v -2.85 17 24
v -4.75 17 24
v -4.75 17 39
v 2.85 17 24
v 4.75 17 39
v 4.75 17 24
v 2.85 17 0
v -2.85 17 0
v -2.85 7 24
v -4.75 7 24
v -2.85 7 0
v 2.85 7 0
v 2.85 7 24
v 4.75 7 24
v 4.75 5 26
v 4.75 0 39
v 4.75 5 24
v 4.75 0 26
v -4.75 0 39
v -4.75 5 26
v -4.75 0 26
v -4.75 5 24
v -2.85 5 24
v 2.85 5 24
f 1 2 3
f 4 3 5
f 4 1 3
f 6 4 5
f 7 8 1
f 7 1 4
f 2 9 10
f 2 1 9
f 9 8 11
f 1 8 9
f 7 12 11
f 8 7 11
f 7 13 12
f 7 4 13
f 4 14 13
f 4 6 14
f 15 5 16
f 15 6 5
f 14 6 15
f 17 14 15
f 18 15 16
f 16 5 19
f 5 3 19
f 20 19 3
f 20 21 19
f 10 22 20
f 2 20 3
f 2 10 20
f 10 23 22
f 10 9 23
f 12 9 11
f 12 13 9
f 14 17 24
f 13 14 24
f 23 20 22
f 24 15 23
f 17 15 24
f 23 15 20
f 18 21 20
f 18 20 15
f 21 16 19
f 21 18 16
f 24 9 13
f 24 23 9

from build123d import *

# Parameters (mm, degrees)
SKETCH_W        = 9.5
SKETCH_H        = 17
PAD_DEPTH       = 39
SKETCH001_W     = 9.5
SKETCH001_H     = 26
POCKET_DEPTH    = 5
SKETCH002_W     = 1.9
SKETCH002_H     = 24
POCKET001_DEPTH = 17
COPYSKETCH003_W = 9.5
COPYSKETCH003_H = 24
POCKET002_DEPTH = 7


with BuildPart() as part:
    # Sketch → Pad (new body)
    with BuildSketch(Plane.XY):
        with Locations((0, 8.5)):
            Rectangle(SKETCH_W, SKETCH_H)
    extrude(amount=PAD_DEPTH)

    # Sketch001 (on Face3 of Pad) → Pocket (cut)
    with BuildSketch(Plane.XZ):
        with Locations((0, 13)):
            Rectangle(SKETCH001_W, SKETCH001_H)
    extrude(amount=-POCKET_DEPTH, mode=Mode.SUBTRACT)

    # Sketch002 (on Face1 of Pocket) → Pocket001 (cut)
    with BuildSketch(Plane(origin=(0, 17, 0), x_dir=(-1, 0, 0), z_dir=(0, 1, 0))):
        with Locations((-3.8, 12)):
            Rectangle(SKETCH002_W, SKETCH002_H)
        with Locations((3.8, 12)):
            Rectangle(SKETCH002_W, SKETCH002_H)
    extrude(amount=-POCKET001_DEPTH, mode=Mode.SUBTRACT)

    # CopySketch003 → Pocket002 (cut)
    with BuildSketch(Plane.XZ):
        with Locations((0, 12)):
            Rectangle(COPYSKETCH003_W, COPYSKETCH003_H)
    extrude(amount=-POCKET002_DEPTH, mode=Mode.SUBTRACT)


solid = part.part
